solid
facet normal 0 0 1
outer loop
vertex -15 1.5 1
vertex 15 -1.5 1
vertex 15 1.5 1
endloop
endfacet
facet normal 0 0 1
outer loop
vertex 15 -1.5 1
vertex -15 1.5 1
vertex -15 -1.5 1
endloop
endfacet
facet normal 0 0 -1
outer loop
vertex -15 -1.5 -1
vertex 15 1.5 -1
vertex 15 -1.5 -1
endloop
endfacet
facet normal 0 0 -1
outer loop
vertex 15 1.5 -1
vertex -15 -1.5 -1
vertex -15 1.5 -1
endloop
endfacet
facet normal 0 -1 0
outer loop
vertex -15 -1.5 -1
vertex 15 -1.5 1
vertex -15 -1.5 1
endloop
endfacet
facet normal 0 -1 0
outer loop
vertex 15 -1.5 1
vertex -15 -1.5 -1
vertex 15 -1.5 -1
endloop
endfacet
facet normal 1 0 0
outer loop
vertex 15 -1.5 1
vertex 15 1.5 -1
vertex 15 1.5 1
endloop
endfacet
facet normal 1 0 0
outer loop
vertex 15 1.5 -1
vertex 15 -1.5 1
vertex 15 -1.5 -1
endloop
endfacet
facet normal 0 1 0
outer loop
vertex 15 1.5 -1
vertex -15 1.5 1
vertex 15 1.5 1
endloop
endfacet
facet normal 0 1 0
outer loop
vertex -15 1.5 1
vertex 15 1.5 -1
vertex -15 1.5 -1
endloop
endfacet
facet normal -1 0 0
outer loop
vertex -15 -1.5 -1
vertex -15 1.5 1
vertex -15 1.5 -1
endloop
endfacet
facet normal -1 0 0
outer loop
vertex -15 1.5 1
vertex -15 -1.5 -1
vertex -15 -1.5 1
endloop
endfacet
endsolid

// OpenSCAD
// file: I.scad
module I(height = 3, showBackground = false)
{
    cube([30, 3, height], center = true);

    if(showBackground)
    {
        color("green")
        cube([30, 3, 1], center = true);
    }
}
// main file
use <I.scad>

I(height = 2
    // , showBackground = true
);
